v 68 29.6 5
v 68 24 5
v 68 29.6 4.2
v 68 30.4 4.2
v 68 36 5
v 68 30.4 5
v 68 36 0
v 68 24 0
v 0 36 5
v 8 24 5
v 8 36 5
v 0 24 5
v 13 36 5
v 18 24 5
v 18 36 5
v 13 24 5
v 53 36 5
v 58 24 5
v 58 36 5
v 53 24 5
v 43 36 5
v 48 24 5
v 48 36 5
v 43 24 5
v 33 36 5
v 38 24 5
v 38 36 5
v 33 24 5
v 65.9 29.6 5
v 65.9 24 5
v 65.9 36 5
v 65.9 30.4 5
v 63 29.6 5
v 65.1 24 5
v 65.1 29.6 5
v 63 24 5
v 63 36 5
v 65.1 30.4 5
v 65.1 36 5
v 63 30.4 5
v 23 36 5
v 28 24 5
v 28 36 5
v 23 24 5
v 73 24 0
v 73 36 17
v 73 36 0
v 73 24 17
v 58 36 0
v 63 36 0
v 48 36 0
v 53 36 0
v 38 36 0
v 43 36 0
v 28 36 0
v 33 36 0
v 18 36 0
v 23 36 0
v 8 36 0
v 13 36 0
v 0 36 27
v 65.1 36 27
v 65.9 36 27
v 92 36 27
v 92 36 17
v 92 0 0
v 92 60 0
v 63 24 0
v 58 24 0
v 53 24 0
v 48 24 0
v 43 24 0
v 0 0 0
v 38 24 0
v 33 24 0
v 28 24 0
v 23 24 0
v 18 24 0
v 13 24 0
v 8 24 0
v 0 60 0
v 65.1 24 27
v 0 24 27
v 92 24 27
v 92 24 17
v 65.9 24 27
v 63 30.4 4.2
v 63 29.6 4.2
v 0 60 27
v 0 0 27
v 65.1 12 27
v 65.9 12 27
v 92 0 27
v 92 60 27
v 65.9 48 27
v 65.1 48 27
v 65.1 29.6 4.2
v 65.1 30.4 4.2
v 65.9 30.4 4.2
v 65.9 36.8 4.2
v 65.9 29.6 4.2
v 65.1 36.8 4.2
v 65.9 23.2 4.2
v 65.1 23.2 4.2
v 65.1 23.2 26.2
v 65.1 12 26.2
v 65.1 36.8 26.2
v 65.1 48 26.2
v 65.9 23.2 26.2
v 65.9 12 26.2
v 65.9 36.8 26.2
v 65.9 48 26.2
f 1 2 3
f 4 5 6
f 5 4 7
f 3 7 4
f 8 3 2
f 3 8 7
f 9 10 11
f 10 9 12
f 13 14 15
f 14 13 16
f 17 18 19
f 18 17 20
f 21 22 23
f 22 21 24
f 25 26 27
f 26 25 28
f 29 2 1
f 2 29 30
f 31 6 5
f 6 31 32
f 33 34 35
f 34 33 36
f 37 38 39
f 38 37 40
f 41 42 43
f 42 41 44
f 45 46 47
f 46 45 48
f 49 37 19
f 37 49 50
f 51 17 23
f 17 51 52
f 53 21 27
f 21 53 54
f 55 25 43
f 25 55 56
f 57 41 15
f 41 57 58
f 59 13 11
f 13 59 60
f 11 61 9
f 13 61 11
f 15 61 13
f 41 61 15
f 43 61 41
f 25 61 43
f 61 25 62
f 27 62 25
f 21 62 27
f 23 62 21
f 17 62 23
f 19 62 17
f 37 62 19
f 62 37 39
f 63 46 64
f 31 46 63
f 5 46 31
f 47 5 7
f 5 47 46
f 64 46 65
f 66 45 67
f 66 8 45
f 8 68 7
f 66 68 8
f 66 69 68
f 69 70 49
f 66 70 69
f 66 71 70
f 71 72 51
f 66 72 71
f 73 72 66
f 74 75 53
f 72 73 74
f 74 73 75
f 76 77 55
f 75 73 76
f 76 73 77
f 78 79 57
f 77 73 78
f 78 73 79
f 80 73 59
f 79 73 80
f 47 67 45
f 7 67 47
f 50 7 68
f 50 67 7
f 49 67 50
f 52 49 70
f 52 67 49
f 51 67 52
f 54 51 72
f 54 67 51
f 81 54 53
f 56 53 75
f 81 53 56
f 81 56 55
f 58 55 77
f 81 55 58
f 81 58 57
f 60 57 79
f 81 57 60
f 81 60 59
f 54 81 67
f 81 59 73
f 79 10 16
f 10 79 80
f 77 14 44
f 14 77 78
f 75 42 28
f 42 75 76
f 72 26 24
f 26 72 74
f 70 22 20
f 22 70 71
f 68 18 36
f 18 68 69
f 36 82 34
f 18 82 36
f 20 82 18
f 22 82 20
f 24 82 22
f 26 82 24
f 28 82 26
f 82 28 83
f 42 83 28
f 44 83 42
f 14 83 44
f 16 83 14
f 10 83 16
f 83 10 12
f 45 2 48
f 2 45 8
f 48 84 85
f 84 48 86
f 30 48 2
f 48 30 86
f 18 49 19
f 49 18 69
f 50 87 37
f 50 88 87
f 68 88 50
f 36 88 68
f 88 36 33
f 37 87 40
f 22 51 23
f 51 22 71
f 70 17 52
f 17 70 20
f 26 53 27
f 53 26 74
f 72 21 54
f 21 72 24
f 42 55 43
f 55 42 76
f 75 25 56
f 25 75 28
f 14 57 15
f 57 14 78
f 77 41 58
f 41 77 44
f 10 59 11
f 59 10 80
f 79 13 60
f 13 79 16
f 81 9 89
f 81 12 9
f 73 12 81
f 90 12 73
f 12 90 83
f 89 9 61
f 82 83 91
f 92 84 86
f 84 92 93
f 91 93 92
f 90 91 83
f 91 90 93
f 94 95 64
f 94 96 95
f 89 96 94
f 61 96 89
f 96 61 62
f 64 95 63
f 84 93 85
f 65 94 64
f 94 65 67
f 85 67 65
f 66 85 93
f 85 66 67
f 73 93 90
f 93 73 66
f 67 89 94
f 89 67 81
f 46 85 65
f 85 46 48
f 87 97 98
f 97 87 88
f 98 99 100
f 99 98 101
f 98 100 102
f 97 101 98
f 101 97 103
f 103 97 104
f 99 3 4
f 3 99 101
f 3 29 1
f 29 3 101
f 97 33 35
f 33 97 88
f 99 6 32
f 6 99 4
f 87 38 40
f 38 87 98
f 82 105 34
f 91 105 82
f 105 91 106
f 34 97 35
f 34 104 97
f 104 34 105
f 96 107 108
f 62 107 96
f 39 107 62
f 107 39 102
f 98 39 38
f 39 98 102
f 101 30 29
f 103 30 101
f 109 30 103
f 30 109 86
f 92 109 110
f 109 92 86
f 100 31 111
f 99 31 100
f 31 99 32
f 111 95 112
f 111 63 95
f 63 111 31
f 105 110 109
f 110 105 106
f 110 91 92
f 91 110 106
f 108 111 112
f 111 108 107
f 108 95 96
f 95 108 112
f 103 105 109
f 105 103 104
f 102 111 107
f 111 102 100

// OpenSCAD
// file: specification_of_components.scad
// Copyright 2020,2024 Martin Scheidt (Attribution 4.0 International, CC-BY 4.0)
//
// You are free to copy and redistribute the material in any medium or format.
// You are free to remix, transform, and build upon the material for any purpose, even commercially.
// You must give appropriate credit, provide a link to the license, and indicate if changes were made.
// You may not apply legal terms or technological measures that legally restrict others from doing anything the license permits.
// No warranties are given.

/*****
To have the dimensions of all components at one place
*******/

/*******
TODO
- standardisation of move tolerance
- standard on which part the move tolerance is substracted?
******/
// ATTENTION: Note the general move_tolerance of 0.5

move_tolerance = 0.5;

/***************wood rail specification***************/
wood_thickness_middle = 11.5;
wood_thickness_rail = 5.5;

straight_length = 144.5;

curve_radius = 182; // inner radius
curve_angle = 45; // degree

/***************magnet specifications***************/
magnet_thickness = 3;
magnet_diameter = 5;
magnet_distance_to_middle = 7.5;
magnet_z = 5.75;

/***************engraving specifications***************/
engraving_height = 1.5;//(block_height-handle_height)/2;
engraving_thickness = 1.5;

/***************switch_blade_optimized***************/

//blade specification
blade_thickness = 2.5;
blade_cover_thicknes = 0.6; //attention: female blade is thinner -> effect on lever_anchor pins?
blade_length = 45;
blade_width  = 19;

//lever anchor specification
lever_hole_size = 2.7;
lever_anchor_posX = blade_width*1/5;
lever_anchor_posY = blade_length*0.8111;

//pin specification
pin_diameter = 5;
pin_female_diameter = pin_diameter+1.5;
pin_height = wood_thickness_rail+2; //2mm move tolerance
y_pos_first_pin = pin_diameter;
y_pos_second_pin = (blade_length*2/3);
overlap = blade_thickness-blade_cover_thicknes; // height of pin_hole, otherwise the pin_hole doesn't stand on the blade -> bug?

/***************overlap_measure***************/
// ATTENTION: Note the general move_tolerance of 0.5

/***************locking_pin***************/
locker_width = 14;
locker_height = 25;
lever_height = 10;
lever_thickness_switch = 4;
rounding = 0.5;

/***************distant-main_signal***************/
block_width=undef;

// body specifications
axis_diameter = 2.5; //maybe use the same material as lever anchor
body_width = 30; // material constraint
body_depth = 50; // minimum, because of the lockpin diameter
body_height = 13.5; // material constraint
wall_thickness_x = (body_width-block_width)/2-move_tolerance;//5;
wall_thickness_y = lever_thickness_switch;
wall_thickness_z = 2;
track_arc_inner_radius = 182;
sagitta = 0.43; //DE: Pfeilhöhe -> 25mm Straighten round edge in the middle
z_pos_axis = 10; // the block_height=13.5 lies a bit heigher, previous: block_height/2+wall_thickness_z

// Locking Part specifications
lock_lever_depth = 9.5;
lock_lever_thickness = 2.5;
lock_lever_height = 10;
foot_width = 2.5;

// color_block specifications
block_width = 20; //material constraint //body_width-2*wall_thickness_x-move_tolerance;
block_depth = (body_depth-2*wall_thickness_y)/2-3*move_tolerance;
block_height = 13.5; // material constraint
//block_height =(body_height-wall_thickness_z)*1.4; //the heigher the value, the more color_block comes out of the body. BUT also: the higher will be the axis hole
overhang = block_height/2-2*move_tolerance; //the circle has to be flattend at one side with move_tolerance
handle_depth = 10+wall_thickness_y;
handle_height = 3;

//Symbol Specifications
signal_symbol_side_space = 4;
signal_symbol_size = block_width-2*signal_symbol_side_space;
signal_triangle_height = (sqrt(3)*signal_symbol_size)/2;

/***************FZS_SZS***************/
zs_with = 25;
zs_depth = 10;
zs_height = 15;

cp_symbol_side_space = 2;
cp_symbol_size = zs_depth-2*cp_symbol_side_space;

/***************drill_template_straight***************/
line_thickness = 0.8;
// drill straight ground
dsg_thickness = 5;
dsg_hole_depth = 5;
// drill straight cutout = dsc
dsc_connector_width = 19;
dsc_rail_width = 73;
dsc_y_pos = 24;
dsc_depth = wood_thickness_middle+move_tolerance;

dsc_connector_z_pos = dsg_thickness+12;
dsc_supporting_surface_width = 50;

// drill straight hole
dsh_y_pos = 12/2;
dsh_x_pos = 7.5;



// drill straigth base = dsb
dsb_width = dsc_rail_width+dsc_connector_width;
dsb_depth = 60;
dsb_height = 27;


/***************drill_template_curve***************/
// drill template curve = dtc
dtc_cutout_inner_angle = 45;
dtc_cutout_middle_angle = 45+5;
dtc_height = 60;
dtc_cutout_z_pos = 24;
dtc_cutout_height = wood_thickness_middle+move_tolerance;
dtc_side_radius = curve_radius + 30;
dtc_middle_radius = curve_radius + 12;
dtc_inner_radius = curve_radius;

// drill template curve hole
dtch_z_pos = 12/2;
dtch_y_pos = 7.5;

dtc_switch_hole_y_pos = 136.5;
// main file
// Copyright 2024 Martin Scheidt (Attribution 4.0 International, CC-BY 4.0)
//
// You are free to copy and redistribute the material in any medium or format.
// You are free to remix, transform, and build upon the material for any purpose, even commercially.
// You must give appropriate credit, provide a link to the license, and indicate if changes were made.
// You may not apply legal terms or technological measures that legally restrict others from doing anything the license permits.
// No warranties are given.

include<./specification_of_components.scad>

module template_straight(){
difference(){
    cube([dsb_width, dsb_depth, dsb_height]);
    //straight
    translate([0,dsc_y_pos,dsg_thickness]) cube([dsc_rail_width, dsc_depth, dsb_height]);
    //connector
    translate([dsc_rail_width,dsc_y_pos, dsc_connector_z_pos]) cube([dsc_connector_width,dsc_depth, dsc_connector_z_pos]);
    // ground holes
    for (x=[dsc_rail_width-dsg_hole_depth : -10 : 5]){
        translate([x,dsc_y_pos,0]) cube([dsg_hole_depth,dsc_depth,dsg_thickness]);
    }
    
    
    // hole position lines
    translate([dsc_rail_width-2*dsg_hole_depth, dsc_y_pos+(dsc_depth-line_thickness)/2, dsg_thickness-line_thickness]) cube([dsg_hole_depth,line_thickness,line_thickness]);
    translate([dsc_rail_width-dsh_x_pos-line_thickness/2, dsc_y_pos, dsg_thickness-line_thickness])cube([line_thickness, dsc_depth, line_thickness]);
    translate([dsc_rail_width-dsh_x_pos-line_thickness/2, dsc_y_pos-dsc_depth, dsb_height-line_thickness])cube([line_thickness, dsc_depth, line_thickness]);
    translate([dsc_rail_width-dsh_x_pos-line_thickness/2, dsc_y_pos+dsc_depth, dsb_height-line_thickness])cube([line_thickness, dsc_depth, line_thickness]);
    translate([dsc_rail_width-dsh_x_pos-line_thickness/2, dsc_y_pos-line_thickness, dsg_thickness-line_thickness]) cube([line_thickness, line_thickness, dsb_height]);
    translate([dsc_rail_width-dsh_x_pos-line_thickness/2, dsc_y_pos+dsc_depth, dsg_thickness-line_thickness]) cube([line_thickness, line_thickness, dsb_height]);
    
}
//translate([-dsc_supporting_surface_width, dsc_y_pos, 0]) cube([dsc_supporting_surface_width, wood_thickness_middle+move_tolerance, dsg_thickness]);
}

template_straight();
